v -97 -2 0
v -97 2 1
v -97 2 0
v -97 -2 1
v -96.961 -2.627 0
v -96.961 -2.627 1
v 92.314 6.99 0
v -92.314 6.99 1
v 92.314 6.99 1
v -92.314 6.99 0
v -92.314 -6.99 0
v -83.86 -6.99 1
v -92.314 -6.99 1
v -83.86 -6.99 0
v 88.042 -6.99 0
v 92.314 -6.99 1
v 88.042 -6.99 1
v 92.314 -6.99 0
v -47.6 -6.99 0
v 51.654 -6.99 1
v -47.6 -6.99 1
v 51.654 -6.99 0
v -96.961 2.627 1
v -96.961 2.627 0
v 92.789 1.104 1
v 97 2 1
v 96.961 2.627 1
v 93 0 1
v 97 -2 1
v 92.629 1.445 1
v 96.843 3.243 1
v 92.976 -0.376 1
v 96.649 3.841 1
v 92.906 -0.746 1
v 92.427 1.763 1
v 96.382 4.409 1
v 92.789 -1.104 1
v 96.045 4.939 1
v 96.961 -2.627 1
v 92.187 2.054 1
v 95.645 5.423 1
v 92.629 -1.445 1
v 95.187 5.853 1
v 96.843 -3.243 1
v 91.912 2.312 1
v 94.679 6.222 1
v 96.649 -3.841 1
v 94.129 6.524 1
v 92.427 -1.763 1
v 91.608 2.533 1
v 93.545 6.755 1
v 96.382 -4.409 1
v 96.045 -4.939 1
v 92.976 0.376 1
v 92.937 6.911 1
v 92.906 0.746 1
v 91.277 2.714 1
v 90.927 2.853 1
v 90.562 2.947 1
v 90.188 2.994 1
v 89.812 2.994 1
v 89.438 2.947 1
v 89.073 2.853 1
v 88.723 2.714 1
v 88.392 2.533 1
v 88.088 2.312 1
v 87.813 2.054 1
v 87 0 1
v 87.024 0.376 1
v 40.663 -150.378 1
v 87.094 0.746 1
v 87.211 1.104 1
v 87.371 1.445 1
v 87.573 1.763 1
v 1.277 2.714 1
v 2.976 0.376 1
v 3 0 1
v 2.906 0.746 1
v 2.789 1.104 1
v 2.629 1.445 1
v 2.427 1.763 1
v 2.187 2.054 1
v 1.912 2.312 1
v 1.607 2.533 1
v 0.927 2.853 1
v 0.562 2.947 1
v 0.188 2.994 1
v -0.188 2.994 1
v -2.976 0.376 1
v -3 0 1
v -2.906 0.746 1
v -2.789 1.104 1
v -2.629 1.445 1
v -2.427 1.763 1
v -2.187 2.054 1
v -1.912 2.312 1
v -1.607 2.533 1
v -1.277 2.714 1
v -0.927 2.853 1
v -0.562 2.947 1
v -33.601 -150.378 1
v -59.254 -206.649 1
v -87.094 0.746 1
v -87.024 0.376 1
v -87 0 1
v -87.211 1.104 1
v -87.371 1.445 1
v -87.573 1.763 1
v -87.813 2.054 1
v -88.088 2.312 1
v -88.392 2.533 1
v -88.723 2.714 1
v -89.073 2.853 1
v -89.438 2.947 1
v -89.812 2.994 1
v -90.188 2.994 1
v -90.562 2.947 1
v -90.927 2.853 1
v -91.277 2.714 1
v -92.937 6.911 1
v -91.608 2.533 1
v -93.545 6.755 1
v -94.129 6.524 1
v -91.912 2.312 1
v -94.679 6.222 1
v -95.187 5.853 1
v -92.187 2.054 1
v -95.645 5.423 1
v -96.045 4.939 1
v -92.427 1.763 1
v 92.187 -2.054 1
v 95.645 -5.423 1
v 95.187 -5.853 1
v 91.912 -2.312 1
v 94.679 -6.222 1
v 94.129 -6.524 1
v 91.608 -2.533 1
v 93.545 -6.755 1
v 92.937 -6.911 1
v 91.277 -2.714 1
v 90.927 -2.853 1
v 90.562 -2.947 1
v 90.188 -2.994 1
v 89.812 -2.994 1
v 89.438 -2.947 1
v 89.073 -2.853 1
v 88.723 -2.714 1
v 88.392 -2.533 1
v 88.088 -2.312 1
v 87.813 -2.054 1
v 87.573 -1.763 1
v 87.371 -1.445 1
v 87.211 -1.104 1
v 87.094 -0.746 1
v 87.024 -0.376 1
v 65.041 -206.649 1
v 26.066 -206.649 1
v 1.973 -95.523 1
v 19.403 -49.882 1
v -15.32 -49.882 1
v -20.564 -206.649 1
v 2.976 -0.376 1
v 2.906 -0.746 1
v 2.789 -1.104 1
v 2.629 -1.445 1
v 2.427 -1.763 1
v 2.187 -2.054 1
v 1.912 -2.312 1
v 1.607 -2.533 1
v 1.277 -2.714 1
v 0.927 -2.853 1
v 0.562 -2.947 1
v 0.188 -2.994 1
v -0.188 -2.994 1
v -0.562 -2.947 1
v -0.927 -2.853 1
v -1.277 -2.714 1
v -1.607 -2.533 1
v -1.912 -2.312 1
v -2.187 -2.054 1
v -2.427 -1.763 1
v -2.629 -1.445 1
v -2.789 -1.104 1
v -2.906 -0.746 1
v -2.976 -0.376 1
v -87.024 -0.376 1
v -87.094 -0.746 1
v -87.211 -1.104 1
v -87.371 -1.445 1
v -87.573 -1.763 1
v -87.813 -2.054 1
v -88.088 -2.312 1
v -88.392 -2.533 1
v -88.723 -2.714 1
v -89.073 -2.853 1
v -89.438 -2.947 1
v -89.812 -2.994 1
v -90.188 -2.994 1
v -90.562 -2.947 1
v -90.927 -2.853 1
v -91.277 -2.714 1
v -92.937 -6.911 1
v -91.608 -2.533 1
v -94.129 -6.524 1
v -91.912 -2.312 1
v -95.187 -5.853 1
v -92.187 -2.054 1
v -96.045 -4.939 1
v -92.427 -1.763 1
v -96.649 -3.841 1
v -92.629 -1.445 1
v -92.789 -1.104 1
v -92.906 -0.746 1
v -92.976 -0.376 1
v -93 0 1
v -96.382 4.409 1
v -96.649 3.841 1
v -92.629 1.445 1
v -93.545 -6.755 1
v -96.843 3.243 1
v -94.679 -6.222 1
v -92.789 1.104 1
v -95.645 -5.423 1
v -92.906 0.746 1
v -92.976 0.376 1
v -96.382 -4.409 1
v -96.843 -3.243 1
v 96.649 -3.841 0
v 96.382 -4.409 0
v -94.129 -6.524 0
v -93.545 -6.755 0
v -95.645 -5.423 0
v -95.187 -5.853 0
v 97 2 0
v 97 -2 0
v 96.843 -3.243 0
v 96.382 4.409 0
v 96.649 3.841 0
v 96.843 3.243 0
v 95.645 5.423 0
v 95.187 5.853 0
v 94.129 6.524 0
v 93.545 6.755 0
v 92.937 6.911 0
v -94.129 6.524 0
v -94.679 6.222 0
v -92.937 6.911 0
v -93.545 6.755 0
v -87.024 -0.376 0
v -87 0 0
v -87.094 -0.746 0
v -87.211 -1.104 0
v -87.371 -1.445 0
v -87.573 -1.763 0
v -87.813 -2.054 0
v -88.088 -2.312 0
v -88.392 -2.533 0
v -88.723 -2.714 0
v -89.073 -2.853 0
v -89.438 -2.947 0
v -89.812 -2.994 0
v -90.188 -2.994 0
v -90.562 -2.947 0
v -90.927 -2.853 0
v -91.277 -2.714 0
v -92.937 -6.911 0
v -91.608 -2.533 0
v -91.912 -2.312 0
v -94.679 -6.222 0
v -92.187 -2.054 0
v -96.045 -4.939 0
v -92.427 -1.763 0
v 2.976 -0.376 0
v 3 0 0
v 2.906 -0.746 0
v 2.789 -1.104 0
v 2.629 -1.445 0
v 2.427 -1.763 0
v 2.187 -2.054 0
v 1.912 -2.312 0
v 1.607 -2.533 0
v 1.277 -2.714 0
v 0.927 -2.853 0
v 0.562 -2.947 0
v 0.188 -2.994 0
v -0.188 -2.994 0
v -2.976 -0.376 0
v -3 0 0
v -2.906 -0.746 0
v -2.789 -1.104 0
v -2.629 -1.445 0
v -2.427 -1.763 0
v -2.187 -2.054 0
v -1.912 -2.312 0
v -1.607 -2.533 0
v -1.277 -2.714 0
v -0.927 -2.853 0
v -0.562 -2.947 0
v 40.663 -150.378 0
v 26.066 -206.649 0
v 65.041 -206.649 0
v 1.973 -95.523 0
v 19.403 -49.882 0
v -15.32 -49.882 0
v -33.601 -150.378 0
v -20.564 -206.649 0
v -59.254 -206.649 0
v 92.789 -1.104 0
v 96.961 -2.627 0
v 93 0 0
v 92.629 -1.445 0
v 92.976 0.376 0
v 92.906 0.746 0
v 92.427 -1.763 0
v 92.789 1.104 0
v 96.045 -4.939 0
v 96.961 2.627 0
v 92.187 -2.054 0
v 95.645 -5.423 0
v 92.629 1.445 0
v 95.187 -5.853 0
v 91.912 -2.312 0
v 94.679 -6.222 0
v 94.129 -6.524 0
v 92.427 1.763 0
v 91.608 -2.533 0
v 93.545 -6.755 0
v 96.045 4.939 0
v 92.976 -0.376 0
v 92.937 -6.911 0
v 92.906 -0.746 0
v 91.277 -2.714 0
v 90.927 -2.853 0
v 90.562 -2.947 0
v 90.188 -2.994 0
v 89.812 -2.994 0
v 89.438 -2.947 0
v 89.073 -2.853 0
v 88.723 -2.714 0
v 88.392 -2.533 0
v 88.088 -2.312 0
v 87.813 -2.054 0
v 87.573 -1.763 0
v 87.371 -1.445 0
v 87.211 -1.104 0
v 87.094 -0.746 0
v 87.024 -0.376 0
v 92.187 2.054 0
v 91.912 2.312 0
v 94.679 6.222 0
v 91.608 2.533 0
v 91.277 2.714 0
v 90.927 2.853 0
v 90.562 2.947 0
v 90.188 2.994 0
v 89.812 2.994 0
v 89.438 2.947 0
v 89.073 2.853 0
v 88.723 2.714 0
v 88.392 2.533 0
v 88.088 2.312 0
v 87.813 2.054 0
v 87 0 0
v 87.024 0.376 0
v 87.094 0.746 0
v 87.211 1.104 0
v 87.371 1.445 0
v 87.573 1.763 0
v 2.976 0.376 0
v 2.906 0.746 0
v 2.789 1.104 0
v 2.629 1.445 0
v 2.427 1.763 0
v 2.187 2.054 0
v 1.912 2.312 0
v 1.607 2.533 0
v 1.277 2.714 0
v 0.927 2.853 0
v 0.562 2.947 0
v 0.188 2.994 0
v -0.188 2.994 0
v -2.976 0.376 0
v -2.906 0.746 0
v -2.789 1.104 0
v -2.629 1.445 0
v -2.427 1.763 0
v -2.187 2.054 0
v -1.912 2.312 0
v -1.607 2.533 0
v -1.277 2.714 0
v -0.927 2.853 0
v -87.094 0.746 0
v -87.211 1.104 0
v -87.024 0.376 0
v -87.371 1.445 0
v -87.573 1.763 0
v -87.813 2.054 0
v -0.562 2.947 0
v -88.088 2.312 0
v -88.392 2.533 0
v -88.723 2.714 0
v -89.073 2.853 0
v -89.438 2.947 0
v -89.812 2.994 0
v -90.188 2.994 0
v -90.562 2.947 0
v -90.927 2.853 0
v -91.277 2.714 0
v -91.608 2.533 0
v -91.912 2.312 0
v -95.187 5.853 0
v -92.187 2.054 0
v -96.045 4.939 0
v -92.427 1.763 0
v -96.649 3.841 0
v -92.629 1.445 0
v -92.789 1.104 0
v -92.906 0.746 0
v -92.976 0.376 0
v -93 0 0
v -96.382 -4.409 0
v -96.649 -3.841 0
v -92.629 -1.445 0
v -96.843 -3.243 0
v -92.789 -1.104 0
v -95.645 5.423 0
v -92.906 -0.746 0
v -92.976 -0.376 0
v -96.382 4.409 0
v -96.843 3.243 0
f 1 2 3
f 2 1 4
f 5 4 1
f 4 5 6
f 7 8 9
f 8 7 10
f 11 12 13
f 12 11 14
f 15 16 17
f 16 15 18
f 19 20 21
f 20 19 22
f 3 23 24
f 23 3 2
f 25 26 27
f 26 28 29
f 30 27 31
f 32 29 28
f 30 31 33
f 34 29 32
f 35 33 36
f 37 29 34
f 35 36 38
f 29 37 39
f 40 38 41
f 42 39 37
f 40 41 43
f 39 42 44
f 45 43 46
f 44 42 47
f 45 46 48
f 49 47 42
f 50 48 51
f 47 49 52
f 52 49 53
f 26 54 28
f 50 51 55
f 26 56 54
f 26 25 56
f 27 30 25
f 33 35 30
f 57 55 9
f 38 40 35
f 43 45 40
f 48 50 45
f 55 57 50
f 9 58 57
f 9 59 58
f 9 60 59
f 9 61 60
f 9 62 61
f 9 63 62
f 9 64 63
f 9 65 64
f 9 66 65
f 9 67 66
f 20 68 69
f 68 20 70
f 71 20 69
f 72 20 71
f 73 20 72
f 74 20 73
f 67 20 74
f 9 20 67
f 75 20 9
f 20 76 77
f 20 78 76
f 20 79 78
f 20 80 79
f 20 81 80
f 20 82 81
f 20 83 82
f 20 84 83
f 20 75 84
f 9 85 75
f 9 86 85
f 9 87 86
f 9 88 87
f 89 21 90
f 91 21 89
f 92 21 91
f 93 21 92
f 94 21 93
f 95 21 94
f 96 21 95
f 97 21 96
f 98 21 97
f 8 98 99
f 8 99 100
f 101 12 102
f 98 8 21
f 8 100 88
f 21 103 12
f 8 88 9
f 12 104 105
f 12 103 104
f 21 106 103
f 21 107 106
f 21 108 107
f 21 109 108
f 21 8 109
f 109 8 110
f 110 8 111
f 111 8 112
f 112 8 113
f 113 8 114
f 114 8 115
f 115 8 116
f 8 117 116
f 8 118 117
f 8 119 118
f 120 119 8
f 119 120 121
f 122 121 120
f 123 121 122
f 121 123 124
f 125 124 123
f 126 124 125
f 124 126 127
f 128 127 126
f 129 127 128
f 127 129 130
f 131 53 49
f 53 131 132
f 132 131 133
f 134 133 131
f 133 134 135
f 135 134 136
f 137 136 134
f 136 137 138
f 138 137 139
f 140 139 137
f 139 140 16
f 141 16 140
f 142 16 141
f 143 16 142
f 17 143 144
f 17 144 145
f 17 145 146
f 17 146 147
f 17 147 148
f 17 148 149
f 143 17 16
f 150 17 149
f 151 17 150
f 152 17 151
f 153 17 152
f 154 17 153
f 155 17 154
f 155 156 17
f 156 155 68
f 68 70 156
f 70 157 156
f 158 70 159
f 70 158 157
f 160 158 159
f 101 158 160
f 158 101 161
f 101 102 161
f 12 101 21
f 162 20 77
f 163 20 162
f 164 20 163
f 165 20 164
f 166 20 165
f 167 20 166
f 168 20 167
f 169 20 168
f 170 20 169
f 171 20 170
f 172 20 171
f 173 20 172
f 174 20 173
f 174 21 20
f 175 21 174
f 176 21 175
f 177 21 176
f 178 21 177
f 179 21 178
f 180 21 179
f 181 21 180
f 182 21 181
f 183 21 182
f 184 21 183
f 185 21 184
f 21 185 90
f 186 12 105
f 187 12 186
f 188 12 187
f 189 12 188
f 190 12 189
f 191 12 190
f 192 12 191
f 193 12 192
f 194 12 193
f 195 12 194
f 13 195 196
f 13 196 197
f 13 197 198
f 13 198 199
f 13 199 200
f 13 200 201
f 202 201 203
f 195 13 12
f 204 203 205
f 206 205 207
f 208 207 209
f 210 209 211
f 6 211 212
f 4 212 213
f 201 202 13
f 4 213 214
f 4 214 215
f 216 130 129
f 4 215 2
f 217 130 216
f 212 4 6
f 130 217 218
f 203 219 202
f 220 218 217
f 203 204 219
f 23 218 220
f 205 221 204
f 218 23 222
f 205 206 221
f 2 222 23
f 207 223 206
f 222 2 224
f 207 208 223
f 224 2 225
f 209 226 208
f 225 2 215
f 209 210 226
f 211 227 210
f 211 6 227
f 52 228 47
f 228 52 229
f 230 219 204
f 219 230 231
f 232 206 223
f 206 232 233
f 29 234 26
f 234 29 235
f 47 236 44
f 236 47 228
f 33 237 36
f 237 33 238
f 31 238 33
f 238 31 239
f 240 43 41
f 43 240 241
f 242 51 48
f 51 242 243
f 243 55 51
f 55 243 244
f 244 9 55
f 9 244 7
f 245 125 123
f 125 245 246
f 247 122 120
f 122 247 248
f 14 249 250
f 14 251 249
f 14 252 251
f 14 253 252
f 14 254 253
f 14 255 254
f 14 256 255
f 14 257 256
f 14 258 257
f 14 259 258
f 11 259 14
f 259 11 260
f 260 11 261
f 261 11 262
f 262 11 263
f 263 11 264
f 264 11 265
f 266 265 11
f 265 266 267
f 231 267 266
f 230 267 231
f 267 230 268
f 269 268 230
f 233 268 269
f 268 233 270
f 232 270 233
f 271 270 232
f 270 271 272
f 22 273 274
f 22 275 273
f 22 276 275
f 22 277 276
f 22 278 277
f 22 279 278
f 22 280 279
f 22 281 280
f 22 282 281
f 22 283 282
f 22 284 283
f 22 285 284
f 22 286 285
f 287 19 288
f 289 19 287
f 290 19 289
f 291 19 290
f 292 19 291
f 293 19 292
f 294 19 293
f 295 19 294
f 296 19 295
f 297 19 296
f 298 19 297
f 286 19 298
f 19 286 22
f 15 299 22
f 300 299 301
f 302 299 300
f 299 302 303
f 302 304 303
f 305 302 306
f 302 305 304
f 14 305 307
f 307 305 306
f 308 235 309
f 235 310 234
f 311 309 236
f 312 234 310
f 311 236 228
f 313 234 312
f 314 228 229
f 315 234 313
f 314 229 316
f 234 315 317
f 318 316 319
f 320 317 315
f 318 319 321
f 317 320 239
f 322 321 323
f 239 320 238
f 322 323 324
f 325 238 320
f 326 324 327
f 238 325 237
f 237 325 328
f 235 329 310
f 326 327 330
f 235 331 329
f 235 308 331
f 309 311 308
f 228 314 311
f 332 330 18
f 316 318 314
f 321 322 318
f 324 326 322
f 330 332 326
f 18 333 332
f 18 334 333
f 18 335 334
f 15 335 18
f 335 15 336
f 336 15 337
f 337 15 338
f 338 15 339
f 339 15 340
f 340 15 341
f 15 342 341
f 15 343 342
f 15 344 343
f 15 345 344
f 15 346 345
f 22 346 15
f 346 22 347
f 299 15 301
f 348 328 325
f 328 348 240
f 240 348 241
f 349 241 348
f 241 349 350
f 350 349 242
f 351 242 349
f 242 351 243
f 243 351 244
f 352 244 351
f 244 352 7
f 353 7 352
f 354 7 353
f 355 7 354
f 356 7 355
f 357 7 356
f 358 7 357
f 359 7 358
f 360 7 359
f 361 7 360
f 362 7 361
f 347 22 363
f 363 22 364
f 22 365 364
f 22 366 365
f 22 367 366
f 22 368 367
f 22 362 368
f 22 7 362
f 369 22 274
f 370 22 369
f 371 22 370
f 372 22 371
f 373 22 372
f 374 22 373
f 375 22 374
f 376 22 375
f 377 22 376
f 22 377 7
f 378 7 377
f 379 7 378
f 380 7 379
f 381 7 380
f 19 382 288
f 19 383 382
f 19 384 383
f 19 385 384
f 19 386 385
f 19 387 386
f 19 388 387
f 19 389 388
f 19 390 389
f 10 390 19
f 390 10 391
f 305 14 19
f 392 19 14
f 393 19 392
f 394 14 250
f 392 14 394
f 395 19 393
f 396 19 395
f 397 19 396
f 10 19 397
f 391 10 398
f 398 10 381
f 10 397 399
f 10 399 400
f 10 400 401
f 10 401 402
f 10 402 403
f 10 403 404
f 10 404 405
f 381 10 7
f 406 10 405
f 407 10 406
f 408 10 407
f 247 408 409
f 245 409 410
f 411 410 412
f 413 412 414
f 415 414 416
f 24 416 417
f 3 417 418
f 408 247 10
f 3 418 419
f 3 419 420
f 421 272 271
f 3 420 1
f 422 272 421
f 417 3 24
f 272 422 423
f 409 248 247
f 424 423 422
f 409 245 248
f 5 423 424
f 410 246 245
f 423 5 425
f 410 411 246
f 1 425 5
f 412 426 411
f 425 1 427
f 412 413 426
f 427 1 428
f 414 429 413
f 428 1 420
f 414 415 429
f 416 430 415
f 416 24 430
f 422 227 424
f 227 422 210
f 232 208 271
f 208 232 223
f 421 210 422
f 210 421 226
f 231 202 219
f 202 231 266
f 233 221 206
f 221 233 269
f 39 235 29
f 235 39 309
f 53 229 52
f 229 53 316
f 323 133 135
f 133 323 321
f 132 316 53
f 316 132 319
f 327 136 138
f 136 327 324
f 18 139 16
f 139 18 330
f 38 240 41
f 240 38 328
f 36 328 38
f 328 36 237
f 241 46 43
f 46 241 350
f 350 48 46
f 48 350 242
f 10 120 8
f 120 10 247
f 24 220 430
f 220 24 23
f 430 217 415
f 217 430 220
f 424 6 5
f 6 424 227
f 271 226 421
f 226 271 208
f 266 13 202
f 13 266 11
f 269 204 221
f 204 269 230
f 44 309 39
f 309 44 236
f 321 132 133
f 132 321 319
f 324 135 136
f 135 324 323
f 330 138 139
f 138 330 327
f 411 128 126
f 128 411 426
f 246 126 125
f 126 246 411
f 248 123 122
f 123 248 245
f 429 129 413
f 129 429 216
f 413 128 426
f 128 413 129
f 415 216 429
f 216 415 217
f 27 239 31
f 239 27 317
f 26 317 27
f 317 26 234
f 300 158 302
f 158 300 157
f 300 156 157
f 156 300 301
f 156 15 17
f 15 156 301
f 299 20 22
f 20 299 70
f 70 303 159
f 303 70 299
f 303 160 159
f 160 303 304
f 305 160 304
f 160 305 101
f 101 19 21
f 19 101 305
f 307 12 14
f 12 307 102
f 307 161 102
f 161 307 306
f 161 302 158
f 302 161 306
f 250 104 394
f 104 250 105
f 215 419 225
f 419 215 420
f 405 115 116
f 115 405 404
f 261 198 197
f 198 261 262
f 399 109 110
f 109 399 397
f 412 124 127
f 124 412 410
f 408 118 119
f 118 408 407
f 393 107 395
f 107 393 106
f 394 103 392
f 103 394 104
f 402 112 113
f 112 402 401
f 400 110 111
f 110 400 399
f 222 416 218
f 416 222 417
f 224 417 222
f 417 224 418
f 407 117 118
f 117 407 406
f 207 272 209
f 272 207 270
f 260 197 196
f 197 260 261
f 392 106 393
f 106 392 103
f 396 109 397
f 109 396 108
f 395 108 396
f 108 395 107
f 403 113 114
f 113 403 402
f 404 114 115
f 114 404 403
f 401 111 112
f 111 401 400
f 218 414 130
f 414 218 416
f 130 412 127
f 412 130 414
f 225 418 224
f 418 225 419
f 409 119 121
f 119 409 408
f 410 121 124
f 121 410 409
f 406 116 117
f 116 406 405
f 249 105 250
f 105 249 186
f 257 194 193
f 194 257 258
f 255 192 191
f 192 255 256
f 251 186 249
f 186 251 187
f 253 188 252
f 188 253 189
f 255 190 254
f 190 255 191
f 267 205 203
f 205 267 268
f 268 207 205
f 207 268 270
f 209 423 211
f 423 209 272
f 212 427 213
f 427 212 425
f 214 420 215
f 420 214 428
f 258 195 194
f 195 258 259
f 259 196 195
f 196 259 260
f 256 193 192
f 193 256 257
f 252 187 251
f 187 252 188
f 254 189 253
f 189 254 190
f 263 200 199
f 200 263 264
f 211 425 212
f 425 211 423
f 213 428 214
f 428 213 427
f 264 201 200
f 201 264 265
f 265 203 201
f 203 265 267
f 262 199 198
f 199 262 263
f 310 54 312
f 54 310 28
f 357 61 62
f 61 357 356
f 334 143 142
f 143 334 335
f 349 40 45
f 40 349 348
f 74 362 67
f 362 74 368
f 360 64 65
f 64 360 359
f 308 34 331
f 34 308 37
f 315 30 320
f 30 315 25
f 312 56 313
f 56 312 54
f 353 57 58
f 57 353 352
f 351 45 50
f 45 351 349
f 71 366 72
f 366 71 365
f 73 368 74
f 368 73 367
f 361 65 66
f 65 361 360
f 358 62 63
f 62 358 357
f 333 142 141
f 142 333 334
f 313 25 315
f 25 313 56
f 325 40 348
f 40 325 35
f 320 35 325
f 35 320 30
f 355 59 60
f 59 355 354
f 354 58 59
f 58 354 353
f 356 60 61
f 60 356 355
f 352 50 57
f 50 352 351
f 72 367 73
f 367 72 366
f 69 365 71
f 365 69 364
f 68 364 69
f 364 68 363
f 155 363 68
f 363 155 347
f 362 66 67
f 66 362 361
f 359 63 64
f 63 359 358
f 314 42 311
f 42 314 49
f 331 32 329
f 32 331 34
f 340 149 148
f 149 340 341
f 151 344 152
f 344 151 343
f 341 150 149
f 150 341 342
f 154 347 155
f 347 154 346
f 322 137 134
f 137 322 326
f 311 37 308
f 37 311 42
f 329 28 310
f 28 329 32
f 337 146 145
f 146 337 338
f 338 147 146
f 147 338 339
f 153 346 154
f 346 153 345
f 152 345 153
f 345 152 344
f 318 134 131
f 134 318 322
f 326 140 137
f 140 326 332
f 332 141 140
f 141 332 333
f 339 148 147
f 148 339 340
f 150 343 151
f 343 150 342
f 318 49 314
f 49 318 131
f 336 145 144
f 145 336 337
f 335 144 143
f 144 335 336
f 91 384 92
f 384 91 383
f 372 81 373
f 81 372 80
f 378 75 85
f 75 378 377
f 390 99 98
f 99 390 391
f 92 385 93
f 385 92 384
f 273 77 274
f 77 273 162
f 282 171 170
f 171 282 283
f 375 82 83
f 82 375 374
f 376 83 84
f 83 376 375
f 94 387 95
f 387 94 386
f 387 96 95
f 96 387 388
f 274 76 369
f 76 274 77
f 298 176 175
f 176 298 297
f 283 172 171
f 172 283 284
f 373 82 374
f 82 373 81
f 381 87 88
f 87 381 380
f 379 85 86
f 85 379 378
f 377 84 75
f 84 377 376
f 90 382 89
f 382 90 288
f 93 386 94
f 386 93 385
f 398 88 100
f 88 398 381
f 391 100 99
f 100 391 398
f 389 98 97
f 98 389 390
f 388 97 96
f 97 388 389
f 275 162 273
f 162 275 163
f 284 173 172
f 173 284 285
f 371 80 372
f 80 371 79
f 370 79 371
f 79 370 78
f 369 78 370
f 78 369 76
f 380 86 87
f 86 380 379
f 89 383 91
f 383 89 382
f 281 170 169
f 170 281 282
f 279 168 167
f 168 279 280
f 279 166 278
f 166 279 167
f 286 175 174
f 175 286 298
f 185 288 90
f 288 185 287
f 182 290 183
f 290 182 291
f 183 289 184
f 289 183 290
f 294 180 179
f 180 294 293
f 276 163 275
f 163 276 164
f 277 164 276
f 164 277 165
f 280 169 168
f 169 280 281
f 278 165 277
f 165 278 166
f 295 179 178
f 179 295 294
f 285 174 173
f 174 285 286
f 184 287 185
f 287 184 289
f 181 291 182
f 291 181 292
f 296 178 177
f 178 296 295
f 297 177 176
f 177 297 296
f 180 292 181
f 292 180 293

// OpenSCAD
$fn = 50;


difference() {
	union() {
		translate(v = [0, 0, 0]) {
			rotate(a = [0, 0, 0]) {
				hull() {
					translate(v = [-92.0000000000, 2.0000000000, 0]) {
						rotate(a = [0, 0, 0]) {
							translate(v = [0, 0, 0]) {
								rotate(a = [0, 0, 0]) {
									cylinder(h = 1, r = 5);
								}
							}
						}
					}
					translate(v = [92.0000000000, 2.0000000000, 0]) {
						rotate(a = [0, 0, 0]) {
							translate(v = [0, 0, 0]) {
								rotate(a = [0, 0, 0]) {
									cylinder(h = 1, r = 5);
								}
							}
						}
					}
					translate(v = [-92.0000000000, -2.0000000000, 0]) {
						rotate(a = [0, 0, 0]) {
							translate(v = [0, 0, 0]) {
								rotate(a = [0, 0, 0]) {
									cylinder(h = 1, r = 5);
								}
							}
						}
					}
					translate(v = [92.0000000000, -2.0000000000, 0]) {
						rotate(a = [0, 0, 0]) {
							translate(v = [0, 0, 0]) {
								rotate(a = [0, 0, 0]) {
									cylinder(h = 1, r = 5);
								}
							}
						}
					}
				}
			}
		}
		translate(v = [0, 0, 0]) {
			rotate(a = [0, 0, 0]) {
				linear_extrude(height = 1) {
					text(font = "DejaVu Sans Mono:style=Bold", halign = "center", size = 209.0000000000, text = "W", valign = "top");
				}
			}
		}
	}
	union() {
		translate(v = [-90.0000000000, 0.0000000000, -125.0000000000]) {
			rotate(a = [0, 0, 0]) {
				cylinder(h = 250, r = 3.0000000000);
			}
		}
		translate(v = [90.0000000000, 0.0000000000, -125.0000000000]) {
			rotate(a = [0, 0, 0]) {
				cylinder(h = 250, r = 3.0000000000);
			}
		}
		translate(v = [90.0000000000, 0.0000000000, -125.0000000000]) {
			rotate(a = [0, 0, 0]) {
				cylinder(h = 250, r = 3.0000000000);
			}
		}
		translate(v = [0, 0, -125.0000000000]) {
			rotate(a = [0, 0, 0]) {
				cylinder(h = 250, r = 3.0000000000);
			}
		}
	}
}
